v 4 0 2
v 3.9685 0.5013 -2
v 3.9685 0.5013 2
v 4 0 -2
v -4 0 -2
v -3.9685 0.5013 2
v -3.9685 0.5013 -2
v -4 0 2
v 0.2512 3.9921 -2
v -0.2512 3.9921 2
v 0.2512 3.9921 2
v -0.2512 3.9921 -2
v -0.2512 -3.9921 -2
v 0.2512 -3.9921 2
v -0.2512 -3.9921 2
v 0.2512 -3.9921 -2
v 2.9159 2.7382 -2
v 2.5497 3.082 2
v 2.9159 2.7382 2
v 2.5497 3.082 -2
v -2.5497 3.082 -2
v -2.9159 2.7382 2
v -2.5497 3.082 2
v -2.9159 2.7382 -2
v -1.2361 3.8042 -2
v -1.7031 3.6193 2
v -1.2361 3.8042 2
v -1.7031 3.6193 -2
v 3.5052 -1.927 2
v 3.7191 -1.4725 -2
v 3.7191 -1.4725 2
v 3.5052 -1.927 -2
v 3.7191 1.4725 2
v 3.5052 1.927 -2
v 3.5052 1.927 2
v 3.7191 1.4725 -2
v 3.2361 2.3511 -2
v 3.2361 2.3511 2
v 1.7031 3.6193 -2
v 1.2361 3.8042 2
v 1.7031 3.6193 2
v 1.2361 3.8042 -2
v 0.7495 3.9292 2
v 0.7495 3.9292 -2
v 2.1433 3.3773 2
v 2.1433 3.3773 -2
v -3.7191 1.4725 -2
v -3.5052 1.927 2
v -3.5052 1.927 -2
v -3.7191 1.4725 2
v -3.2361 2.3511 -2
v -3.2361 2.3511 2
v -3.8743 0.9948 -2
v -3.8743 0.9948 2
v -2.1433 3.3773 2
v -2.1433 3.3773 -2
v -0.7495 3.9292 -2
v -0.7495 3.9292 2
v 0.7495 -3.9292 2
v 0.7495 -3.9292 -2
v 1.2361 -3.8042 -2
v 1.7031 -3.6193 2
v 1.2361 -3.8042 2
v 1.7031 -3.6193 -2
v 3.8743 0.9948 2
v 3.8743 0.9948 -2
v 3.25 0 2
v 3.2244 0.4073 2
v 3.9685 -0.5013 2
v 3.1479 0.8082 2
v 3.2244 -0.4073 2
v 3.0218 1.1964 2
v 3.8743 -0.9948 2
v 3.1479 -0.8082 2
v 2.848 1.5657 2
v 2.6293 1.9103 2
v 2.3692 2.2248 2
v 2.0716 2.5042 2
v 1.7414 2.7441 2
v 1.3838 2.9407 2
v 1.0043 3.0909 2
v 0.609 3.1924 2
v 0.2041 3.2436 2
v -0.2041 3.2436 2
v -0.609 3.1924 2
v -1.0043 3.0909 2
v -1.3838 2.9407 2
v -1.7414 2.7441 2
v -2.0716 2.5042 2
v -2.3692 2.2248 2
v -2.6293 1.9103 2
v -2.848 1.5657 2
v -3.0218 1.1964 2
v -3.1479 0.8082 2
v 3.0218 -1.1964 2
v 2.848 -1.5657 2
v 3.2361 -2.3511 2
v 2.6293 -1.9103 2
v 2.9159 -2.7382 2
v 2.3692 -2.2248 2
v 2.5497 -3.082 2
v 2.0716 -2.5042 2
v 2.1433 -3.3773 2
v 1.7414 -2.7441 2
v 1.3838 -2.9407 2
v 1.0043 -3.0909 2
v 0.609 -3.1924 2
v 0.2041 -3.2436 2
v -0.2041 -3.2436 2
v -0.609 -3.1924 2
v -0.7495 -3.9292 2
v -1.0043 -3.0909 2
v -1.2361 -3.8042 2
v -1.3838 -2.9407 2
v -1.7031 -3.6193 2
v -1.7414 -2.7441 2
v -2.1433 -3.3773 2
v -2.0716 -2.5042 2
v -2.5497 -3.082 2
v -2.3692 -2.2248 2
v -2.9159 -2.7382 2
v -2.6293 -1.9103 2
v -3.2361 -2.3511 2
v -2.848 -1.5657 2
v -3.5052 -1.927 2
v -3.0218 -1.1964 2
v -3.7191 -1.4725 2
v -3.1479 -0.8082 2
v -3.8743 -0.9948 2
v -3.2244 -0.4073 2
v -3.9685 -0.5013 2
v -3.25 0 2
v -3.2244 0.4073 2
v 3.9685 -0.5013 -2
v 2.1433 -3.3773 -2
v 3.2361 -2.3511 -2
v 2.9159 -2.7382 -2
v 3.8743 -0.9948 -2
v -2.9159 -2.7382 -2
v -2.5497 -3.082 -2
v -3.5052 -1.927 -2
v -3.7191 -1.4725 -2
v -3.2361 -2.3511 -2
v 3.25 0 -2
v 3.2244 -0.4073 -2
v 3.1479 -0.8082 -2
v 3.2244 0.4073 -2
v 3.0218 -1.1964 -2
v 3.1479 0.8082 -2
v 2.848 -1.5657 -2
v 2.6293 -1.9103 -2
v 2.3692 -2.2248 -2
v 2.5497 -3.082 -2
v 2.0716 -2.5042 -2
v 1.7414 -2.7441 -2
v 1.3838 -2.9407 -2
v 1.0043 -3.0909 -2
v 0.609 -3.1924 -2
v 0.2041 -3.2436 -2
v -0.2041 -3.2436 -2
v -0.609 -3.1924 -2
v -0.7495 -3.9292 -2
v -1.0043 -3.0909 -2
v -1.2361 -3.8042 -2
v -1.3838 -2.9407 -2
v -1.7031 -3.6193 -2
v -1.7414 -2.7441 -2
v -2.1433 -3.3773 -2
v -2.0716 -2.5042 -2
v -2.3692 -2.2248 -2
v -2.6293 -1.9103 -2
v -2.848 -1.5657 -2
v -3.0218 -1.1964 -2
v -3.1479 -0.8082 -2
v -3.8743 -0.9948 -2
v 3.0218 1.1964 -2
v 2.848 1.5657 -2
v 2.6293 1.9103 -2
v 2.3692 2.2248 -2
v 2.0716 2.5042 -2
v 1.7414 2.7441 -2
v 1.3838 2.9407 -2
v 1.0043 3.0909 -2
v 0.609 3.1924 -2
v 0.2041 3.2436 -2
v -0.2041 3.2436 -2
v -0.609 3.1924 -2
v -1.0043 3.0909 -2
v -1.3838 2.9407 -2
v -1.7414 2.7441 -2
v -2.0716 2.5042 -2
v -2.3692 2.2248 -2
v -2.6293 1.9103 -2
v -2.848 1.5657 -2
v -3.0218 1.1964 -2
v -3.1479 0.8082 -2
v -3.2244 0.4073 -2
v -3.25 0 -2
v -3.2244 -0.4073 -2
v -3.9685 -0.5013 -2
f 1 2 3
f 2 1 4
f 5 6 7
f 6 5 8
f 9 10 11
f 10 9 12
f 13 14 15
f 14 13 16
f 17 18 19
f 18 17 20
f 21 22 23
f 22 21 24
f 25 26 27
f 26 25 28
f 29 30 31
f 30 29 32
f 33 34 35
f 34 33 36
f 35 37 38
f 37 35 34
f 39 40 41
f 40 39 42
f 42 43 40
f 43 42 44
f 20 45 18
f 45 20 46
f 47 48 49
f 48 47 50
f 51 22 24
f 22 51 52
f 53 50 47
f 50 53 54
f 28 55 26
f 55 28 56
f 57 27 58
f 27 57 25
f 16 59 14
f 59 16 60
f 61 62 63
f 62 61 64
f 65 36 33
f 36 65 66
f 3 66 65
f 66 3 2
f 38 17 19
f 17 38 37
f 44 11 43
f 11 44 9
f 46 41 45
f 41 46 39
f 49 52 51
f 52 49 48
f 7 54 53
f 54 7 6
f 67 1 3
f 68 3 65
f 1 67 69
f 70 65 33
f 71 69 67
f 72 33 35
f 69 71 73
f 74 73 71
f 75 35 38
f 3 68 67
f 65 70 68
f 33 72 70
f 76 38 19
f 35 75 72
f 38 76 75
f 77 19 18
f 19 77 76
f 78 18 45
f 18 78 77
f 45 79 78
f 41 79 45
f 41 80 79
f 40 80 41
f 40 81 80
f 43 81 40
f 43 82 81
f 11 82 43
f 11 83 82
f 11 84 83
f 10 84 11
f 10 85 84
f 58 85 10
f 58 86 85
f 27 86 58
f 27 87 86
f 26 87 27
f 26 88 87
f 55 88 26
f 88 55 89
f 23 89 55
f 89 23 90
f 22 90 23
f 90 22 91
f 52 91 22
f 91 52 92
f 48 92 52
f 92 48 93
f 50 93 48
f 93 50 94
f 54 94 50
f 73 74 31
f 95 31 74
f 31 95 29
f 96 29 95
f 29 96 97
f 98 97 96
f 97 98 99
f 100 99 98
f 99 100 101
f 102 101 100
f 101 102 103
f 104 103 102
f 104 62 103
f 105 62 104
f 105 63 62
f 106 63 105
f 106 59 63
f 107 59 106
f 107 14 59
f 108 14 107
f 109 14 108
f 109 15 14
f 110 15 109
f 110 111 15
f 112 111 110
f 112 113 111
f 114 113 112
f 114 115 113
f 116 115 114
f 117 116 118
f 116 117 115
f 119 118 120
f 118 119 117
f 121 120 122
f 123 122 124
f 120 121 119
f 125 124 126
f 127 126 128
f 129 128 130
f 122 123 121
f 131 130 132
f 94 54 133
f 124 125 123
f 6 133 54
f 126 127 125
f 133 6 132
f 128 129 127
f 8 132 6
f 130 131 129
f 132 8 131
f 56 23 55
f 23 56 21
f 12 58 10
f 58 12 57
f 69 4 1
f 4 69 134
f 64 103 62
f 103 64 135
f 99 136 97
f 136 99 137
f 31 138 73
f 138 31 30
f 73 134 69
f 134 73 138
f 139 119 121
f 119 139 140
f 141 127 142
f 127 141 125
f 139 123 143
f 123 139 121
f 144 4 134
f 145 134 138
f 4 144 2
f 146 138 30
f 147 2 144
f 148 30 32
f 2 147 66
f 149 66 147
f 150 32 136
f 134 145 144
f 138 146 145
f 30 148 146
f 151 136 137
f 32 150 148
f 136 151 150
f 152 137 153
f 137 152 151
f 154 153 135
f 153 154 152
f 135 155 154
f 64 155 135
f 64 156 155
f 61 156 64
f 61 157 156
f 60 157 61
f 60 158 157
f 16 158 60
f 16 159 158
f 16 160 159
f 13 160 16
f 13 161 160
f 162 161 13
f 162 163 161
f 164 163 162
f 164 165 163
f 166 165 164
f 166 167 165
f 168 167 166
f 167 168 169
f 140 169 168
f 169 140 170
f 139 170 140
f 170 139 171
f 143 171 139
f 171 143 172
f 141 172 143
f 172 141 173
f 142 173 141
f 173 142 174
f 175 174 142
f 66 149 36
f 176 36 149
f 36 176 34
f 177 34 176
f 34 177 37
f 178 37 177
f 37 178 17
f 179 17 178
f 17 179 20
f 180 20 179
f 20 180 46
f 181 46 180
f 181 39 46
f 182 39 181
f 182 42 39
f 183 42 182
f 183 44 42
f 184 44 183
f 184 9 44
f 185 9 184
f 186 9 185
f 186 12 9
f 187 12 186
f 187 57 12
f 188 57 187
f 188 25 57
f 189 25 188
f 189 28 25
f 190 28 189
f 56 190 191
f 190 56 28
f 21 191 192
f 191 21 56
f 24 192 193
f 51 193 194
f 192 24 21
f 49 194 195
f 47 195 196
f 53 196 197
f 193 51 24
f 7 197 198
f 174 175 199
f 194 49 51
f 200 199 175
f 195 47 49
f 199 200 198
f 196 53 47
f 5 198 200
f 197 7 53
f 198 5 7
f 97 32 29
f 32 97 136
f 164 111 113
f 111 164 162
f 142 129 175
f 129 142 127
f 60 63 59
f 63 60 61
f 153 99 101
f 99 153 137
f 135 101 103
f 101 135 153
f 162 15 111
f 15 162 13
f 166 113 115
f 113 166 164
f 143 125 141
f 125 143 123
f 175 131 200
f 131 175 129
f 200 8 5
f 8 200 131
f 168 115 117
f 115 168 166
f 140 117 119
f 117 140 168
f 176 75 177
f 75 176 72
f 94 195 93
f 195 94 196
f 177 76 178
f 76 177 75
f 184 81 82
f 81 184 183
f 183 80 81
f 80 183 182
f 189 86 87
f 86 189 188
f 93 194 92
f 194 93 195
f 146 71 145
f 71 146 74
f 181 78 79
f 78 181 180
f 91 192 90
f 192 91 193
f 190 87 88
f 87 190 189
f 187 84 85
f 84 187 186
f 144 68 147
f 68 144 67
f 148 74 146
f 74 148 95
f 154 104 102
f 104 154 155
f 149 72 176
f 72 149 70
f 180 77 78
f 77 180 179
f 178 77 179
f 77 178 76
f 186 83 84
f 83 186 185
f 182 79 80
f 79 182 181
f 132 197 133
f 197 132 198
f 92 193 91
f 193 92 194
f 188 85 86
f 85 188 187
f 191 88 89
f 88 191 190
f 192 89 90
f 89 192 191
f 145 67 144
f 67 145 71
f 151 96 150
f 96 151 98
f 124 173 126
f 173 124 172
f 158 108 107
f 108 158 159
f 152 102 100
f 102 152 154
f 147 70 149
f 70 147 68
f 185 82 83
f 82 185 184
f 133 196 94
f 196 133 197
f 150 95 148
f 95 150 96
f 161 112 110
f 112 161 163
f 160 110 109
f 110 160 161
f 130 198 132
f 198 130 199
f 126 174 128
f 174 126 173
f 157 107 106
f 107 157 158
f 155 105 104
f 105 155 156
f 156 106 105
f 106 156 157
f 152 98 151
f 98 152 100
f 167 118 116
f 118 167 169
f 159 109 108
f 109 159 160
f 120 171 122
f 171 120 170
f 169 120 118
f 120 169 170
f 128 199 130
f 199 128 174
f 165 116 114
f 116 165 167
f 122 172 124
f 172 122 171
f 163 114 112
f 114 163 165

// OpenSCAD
$fn = 50;


difference() {
	union() {
		translate(v = [0, 0, -2.0000000000]) {
			cylinder(h = 4, r = 4.0000000000);
		}
	}
	union() {
		translate(v = [0, 0, -100.0000000000]) {
			cylinder(h = 200, r = 3.2500000000);
		}
	}
}
